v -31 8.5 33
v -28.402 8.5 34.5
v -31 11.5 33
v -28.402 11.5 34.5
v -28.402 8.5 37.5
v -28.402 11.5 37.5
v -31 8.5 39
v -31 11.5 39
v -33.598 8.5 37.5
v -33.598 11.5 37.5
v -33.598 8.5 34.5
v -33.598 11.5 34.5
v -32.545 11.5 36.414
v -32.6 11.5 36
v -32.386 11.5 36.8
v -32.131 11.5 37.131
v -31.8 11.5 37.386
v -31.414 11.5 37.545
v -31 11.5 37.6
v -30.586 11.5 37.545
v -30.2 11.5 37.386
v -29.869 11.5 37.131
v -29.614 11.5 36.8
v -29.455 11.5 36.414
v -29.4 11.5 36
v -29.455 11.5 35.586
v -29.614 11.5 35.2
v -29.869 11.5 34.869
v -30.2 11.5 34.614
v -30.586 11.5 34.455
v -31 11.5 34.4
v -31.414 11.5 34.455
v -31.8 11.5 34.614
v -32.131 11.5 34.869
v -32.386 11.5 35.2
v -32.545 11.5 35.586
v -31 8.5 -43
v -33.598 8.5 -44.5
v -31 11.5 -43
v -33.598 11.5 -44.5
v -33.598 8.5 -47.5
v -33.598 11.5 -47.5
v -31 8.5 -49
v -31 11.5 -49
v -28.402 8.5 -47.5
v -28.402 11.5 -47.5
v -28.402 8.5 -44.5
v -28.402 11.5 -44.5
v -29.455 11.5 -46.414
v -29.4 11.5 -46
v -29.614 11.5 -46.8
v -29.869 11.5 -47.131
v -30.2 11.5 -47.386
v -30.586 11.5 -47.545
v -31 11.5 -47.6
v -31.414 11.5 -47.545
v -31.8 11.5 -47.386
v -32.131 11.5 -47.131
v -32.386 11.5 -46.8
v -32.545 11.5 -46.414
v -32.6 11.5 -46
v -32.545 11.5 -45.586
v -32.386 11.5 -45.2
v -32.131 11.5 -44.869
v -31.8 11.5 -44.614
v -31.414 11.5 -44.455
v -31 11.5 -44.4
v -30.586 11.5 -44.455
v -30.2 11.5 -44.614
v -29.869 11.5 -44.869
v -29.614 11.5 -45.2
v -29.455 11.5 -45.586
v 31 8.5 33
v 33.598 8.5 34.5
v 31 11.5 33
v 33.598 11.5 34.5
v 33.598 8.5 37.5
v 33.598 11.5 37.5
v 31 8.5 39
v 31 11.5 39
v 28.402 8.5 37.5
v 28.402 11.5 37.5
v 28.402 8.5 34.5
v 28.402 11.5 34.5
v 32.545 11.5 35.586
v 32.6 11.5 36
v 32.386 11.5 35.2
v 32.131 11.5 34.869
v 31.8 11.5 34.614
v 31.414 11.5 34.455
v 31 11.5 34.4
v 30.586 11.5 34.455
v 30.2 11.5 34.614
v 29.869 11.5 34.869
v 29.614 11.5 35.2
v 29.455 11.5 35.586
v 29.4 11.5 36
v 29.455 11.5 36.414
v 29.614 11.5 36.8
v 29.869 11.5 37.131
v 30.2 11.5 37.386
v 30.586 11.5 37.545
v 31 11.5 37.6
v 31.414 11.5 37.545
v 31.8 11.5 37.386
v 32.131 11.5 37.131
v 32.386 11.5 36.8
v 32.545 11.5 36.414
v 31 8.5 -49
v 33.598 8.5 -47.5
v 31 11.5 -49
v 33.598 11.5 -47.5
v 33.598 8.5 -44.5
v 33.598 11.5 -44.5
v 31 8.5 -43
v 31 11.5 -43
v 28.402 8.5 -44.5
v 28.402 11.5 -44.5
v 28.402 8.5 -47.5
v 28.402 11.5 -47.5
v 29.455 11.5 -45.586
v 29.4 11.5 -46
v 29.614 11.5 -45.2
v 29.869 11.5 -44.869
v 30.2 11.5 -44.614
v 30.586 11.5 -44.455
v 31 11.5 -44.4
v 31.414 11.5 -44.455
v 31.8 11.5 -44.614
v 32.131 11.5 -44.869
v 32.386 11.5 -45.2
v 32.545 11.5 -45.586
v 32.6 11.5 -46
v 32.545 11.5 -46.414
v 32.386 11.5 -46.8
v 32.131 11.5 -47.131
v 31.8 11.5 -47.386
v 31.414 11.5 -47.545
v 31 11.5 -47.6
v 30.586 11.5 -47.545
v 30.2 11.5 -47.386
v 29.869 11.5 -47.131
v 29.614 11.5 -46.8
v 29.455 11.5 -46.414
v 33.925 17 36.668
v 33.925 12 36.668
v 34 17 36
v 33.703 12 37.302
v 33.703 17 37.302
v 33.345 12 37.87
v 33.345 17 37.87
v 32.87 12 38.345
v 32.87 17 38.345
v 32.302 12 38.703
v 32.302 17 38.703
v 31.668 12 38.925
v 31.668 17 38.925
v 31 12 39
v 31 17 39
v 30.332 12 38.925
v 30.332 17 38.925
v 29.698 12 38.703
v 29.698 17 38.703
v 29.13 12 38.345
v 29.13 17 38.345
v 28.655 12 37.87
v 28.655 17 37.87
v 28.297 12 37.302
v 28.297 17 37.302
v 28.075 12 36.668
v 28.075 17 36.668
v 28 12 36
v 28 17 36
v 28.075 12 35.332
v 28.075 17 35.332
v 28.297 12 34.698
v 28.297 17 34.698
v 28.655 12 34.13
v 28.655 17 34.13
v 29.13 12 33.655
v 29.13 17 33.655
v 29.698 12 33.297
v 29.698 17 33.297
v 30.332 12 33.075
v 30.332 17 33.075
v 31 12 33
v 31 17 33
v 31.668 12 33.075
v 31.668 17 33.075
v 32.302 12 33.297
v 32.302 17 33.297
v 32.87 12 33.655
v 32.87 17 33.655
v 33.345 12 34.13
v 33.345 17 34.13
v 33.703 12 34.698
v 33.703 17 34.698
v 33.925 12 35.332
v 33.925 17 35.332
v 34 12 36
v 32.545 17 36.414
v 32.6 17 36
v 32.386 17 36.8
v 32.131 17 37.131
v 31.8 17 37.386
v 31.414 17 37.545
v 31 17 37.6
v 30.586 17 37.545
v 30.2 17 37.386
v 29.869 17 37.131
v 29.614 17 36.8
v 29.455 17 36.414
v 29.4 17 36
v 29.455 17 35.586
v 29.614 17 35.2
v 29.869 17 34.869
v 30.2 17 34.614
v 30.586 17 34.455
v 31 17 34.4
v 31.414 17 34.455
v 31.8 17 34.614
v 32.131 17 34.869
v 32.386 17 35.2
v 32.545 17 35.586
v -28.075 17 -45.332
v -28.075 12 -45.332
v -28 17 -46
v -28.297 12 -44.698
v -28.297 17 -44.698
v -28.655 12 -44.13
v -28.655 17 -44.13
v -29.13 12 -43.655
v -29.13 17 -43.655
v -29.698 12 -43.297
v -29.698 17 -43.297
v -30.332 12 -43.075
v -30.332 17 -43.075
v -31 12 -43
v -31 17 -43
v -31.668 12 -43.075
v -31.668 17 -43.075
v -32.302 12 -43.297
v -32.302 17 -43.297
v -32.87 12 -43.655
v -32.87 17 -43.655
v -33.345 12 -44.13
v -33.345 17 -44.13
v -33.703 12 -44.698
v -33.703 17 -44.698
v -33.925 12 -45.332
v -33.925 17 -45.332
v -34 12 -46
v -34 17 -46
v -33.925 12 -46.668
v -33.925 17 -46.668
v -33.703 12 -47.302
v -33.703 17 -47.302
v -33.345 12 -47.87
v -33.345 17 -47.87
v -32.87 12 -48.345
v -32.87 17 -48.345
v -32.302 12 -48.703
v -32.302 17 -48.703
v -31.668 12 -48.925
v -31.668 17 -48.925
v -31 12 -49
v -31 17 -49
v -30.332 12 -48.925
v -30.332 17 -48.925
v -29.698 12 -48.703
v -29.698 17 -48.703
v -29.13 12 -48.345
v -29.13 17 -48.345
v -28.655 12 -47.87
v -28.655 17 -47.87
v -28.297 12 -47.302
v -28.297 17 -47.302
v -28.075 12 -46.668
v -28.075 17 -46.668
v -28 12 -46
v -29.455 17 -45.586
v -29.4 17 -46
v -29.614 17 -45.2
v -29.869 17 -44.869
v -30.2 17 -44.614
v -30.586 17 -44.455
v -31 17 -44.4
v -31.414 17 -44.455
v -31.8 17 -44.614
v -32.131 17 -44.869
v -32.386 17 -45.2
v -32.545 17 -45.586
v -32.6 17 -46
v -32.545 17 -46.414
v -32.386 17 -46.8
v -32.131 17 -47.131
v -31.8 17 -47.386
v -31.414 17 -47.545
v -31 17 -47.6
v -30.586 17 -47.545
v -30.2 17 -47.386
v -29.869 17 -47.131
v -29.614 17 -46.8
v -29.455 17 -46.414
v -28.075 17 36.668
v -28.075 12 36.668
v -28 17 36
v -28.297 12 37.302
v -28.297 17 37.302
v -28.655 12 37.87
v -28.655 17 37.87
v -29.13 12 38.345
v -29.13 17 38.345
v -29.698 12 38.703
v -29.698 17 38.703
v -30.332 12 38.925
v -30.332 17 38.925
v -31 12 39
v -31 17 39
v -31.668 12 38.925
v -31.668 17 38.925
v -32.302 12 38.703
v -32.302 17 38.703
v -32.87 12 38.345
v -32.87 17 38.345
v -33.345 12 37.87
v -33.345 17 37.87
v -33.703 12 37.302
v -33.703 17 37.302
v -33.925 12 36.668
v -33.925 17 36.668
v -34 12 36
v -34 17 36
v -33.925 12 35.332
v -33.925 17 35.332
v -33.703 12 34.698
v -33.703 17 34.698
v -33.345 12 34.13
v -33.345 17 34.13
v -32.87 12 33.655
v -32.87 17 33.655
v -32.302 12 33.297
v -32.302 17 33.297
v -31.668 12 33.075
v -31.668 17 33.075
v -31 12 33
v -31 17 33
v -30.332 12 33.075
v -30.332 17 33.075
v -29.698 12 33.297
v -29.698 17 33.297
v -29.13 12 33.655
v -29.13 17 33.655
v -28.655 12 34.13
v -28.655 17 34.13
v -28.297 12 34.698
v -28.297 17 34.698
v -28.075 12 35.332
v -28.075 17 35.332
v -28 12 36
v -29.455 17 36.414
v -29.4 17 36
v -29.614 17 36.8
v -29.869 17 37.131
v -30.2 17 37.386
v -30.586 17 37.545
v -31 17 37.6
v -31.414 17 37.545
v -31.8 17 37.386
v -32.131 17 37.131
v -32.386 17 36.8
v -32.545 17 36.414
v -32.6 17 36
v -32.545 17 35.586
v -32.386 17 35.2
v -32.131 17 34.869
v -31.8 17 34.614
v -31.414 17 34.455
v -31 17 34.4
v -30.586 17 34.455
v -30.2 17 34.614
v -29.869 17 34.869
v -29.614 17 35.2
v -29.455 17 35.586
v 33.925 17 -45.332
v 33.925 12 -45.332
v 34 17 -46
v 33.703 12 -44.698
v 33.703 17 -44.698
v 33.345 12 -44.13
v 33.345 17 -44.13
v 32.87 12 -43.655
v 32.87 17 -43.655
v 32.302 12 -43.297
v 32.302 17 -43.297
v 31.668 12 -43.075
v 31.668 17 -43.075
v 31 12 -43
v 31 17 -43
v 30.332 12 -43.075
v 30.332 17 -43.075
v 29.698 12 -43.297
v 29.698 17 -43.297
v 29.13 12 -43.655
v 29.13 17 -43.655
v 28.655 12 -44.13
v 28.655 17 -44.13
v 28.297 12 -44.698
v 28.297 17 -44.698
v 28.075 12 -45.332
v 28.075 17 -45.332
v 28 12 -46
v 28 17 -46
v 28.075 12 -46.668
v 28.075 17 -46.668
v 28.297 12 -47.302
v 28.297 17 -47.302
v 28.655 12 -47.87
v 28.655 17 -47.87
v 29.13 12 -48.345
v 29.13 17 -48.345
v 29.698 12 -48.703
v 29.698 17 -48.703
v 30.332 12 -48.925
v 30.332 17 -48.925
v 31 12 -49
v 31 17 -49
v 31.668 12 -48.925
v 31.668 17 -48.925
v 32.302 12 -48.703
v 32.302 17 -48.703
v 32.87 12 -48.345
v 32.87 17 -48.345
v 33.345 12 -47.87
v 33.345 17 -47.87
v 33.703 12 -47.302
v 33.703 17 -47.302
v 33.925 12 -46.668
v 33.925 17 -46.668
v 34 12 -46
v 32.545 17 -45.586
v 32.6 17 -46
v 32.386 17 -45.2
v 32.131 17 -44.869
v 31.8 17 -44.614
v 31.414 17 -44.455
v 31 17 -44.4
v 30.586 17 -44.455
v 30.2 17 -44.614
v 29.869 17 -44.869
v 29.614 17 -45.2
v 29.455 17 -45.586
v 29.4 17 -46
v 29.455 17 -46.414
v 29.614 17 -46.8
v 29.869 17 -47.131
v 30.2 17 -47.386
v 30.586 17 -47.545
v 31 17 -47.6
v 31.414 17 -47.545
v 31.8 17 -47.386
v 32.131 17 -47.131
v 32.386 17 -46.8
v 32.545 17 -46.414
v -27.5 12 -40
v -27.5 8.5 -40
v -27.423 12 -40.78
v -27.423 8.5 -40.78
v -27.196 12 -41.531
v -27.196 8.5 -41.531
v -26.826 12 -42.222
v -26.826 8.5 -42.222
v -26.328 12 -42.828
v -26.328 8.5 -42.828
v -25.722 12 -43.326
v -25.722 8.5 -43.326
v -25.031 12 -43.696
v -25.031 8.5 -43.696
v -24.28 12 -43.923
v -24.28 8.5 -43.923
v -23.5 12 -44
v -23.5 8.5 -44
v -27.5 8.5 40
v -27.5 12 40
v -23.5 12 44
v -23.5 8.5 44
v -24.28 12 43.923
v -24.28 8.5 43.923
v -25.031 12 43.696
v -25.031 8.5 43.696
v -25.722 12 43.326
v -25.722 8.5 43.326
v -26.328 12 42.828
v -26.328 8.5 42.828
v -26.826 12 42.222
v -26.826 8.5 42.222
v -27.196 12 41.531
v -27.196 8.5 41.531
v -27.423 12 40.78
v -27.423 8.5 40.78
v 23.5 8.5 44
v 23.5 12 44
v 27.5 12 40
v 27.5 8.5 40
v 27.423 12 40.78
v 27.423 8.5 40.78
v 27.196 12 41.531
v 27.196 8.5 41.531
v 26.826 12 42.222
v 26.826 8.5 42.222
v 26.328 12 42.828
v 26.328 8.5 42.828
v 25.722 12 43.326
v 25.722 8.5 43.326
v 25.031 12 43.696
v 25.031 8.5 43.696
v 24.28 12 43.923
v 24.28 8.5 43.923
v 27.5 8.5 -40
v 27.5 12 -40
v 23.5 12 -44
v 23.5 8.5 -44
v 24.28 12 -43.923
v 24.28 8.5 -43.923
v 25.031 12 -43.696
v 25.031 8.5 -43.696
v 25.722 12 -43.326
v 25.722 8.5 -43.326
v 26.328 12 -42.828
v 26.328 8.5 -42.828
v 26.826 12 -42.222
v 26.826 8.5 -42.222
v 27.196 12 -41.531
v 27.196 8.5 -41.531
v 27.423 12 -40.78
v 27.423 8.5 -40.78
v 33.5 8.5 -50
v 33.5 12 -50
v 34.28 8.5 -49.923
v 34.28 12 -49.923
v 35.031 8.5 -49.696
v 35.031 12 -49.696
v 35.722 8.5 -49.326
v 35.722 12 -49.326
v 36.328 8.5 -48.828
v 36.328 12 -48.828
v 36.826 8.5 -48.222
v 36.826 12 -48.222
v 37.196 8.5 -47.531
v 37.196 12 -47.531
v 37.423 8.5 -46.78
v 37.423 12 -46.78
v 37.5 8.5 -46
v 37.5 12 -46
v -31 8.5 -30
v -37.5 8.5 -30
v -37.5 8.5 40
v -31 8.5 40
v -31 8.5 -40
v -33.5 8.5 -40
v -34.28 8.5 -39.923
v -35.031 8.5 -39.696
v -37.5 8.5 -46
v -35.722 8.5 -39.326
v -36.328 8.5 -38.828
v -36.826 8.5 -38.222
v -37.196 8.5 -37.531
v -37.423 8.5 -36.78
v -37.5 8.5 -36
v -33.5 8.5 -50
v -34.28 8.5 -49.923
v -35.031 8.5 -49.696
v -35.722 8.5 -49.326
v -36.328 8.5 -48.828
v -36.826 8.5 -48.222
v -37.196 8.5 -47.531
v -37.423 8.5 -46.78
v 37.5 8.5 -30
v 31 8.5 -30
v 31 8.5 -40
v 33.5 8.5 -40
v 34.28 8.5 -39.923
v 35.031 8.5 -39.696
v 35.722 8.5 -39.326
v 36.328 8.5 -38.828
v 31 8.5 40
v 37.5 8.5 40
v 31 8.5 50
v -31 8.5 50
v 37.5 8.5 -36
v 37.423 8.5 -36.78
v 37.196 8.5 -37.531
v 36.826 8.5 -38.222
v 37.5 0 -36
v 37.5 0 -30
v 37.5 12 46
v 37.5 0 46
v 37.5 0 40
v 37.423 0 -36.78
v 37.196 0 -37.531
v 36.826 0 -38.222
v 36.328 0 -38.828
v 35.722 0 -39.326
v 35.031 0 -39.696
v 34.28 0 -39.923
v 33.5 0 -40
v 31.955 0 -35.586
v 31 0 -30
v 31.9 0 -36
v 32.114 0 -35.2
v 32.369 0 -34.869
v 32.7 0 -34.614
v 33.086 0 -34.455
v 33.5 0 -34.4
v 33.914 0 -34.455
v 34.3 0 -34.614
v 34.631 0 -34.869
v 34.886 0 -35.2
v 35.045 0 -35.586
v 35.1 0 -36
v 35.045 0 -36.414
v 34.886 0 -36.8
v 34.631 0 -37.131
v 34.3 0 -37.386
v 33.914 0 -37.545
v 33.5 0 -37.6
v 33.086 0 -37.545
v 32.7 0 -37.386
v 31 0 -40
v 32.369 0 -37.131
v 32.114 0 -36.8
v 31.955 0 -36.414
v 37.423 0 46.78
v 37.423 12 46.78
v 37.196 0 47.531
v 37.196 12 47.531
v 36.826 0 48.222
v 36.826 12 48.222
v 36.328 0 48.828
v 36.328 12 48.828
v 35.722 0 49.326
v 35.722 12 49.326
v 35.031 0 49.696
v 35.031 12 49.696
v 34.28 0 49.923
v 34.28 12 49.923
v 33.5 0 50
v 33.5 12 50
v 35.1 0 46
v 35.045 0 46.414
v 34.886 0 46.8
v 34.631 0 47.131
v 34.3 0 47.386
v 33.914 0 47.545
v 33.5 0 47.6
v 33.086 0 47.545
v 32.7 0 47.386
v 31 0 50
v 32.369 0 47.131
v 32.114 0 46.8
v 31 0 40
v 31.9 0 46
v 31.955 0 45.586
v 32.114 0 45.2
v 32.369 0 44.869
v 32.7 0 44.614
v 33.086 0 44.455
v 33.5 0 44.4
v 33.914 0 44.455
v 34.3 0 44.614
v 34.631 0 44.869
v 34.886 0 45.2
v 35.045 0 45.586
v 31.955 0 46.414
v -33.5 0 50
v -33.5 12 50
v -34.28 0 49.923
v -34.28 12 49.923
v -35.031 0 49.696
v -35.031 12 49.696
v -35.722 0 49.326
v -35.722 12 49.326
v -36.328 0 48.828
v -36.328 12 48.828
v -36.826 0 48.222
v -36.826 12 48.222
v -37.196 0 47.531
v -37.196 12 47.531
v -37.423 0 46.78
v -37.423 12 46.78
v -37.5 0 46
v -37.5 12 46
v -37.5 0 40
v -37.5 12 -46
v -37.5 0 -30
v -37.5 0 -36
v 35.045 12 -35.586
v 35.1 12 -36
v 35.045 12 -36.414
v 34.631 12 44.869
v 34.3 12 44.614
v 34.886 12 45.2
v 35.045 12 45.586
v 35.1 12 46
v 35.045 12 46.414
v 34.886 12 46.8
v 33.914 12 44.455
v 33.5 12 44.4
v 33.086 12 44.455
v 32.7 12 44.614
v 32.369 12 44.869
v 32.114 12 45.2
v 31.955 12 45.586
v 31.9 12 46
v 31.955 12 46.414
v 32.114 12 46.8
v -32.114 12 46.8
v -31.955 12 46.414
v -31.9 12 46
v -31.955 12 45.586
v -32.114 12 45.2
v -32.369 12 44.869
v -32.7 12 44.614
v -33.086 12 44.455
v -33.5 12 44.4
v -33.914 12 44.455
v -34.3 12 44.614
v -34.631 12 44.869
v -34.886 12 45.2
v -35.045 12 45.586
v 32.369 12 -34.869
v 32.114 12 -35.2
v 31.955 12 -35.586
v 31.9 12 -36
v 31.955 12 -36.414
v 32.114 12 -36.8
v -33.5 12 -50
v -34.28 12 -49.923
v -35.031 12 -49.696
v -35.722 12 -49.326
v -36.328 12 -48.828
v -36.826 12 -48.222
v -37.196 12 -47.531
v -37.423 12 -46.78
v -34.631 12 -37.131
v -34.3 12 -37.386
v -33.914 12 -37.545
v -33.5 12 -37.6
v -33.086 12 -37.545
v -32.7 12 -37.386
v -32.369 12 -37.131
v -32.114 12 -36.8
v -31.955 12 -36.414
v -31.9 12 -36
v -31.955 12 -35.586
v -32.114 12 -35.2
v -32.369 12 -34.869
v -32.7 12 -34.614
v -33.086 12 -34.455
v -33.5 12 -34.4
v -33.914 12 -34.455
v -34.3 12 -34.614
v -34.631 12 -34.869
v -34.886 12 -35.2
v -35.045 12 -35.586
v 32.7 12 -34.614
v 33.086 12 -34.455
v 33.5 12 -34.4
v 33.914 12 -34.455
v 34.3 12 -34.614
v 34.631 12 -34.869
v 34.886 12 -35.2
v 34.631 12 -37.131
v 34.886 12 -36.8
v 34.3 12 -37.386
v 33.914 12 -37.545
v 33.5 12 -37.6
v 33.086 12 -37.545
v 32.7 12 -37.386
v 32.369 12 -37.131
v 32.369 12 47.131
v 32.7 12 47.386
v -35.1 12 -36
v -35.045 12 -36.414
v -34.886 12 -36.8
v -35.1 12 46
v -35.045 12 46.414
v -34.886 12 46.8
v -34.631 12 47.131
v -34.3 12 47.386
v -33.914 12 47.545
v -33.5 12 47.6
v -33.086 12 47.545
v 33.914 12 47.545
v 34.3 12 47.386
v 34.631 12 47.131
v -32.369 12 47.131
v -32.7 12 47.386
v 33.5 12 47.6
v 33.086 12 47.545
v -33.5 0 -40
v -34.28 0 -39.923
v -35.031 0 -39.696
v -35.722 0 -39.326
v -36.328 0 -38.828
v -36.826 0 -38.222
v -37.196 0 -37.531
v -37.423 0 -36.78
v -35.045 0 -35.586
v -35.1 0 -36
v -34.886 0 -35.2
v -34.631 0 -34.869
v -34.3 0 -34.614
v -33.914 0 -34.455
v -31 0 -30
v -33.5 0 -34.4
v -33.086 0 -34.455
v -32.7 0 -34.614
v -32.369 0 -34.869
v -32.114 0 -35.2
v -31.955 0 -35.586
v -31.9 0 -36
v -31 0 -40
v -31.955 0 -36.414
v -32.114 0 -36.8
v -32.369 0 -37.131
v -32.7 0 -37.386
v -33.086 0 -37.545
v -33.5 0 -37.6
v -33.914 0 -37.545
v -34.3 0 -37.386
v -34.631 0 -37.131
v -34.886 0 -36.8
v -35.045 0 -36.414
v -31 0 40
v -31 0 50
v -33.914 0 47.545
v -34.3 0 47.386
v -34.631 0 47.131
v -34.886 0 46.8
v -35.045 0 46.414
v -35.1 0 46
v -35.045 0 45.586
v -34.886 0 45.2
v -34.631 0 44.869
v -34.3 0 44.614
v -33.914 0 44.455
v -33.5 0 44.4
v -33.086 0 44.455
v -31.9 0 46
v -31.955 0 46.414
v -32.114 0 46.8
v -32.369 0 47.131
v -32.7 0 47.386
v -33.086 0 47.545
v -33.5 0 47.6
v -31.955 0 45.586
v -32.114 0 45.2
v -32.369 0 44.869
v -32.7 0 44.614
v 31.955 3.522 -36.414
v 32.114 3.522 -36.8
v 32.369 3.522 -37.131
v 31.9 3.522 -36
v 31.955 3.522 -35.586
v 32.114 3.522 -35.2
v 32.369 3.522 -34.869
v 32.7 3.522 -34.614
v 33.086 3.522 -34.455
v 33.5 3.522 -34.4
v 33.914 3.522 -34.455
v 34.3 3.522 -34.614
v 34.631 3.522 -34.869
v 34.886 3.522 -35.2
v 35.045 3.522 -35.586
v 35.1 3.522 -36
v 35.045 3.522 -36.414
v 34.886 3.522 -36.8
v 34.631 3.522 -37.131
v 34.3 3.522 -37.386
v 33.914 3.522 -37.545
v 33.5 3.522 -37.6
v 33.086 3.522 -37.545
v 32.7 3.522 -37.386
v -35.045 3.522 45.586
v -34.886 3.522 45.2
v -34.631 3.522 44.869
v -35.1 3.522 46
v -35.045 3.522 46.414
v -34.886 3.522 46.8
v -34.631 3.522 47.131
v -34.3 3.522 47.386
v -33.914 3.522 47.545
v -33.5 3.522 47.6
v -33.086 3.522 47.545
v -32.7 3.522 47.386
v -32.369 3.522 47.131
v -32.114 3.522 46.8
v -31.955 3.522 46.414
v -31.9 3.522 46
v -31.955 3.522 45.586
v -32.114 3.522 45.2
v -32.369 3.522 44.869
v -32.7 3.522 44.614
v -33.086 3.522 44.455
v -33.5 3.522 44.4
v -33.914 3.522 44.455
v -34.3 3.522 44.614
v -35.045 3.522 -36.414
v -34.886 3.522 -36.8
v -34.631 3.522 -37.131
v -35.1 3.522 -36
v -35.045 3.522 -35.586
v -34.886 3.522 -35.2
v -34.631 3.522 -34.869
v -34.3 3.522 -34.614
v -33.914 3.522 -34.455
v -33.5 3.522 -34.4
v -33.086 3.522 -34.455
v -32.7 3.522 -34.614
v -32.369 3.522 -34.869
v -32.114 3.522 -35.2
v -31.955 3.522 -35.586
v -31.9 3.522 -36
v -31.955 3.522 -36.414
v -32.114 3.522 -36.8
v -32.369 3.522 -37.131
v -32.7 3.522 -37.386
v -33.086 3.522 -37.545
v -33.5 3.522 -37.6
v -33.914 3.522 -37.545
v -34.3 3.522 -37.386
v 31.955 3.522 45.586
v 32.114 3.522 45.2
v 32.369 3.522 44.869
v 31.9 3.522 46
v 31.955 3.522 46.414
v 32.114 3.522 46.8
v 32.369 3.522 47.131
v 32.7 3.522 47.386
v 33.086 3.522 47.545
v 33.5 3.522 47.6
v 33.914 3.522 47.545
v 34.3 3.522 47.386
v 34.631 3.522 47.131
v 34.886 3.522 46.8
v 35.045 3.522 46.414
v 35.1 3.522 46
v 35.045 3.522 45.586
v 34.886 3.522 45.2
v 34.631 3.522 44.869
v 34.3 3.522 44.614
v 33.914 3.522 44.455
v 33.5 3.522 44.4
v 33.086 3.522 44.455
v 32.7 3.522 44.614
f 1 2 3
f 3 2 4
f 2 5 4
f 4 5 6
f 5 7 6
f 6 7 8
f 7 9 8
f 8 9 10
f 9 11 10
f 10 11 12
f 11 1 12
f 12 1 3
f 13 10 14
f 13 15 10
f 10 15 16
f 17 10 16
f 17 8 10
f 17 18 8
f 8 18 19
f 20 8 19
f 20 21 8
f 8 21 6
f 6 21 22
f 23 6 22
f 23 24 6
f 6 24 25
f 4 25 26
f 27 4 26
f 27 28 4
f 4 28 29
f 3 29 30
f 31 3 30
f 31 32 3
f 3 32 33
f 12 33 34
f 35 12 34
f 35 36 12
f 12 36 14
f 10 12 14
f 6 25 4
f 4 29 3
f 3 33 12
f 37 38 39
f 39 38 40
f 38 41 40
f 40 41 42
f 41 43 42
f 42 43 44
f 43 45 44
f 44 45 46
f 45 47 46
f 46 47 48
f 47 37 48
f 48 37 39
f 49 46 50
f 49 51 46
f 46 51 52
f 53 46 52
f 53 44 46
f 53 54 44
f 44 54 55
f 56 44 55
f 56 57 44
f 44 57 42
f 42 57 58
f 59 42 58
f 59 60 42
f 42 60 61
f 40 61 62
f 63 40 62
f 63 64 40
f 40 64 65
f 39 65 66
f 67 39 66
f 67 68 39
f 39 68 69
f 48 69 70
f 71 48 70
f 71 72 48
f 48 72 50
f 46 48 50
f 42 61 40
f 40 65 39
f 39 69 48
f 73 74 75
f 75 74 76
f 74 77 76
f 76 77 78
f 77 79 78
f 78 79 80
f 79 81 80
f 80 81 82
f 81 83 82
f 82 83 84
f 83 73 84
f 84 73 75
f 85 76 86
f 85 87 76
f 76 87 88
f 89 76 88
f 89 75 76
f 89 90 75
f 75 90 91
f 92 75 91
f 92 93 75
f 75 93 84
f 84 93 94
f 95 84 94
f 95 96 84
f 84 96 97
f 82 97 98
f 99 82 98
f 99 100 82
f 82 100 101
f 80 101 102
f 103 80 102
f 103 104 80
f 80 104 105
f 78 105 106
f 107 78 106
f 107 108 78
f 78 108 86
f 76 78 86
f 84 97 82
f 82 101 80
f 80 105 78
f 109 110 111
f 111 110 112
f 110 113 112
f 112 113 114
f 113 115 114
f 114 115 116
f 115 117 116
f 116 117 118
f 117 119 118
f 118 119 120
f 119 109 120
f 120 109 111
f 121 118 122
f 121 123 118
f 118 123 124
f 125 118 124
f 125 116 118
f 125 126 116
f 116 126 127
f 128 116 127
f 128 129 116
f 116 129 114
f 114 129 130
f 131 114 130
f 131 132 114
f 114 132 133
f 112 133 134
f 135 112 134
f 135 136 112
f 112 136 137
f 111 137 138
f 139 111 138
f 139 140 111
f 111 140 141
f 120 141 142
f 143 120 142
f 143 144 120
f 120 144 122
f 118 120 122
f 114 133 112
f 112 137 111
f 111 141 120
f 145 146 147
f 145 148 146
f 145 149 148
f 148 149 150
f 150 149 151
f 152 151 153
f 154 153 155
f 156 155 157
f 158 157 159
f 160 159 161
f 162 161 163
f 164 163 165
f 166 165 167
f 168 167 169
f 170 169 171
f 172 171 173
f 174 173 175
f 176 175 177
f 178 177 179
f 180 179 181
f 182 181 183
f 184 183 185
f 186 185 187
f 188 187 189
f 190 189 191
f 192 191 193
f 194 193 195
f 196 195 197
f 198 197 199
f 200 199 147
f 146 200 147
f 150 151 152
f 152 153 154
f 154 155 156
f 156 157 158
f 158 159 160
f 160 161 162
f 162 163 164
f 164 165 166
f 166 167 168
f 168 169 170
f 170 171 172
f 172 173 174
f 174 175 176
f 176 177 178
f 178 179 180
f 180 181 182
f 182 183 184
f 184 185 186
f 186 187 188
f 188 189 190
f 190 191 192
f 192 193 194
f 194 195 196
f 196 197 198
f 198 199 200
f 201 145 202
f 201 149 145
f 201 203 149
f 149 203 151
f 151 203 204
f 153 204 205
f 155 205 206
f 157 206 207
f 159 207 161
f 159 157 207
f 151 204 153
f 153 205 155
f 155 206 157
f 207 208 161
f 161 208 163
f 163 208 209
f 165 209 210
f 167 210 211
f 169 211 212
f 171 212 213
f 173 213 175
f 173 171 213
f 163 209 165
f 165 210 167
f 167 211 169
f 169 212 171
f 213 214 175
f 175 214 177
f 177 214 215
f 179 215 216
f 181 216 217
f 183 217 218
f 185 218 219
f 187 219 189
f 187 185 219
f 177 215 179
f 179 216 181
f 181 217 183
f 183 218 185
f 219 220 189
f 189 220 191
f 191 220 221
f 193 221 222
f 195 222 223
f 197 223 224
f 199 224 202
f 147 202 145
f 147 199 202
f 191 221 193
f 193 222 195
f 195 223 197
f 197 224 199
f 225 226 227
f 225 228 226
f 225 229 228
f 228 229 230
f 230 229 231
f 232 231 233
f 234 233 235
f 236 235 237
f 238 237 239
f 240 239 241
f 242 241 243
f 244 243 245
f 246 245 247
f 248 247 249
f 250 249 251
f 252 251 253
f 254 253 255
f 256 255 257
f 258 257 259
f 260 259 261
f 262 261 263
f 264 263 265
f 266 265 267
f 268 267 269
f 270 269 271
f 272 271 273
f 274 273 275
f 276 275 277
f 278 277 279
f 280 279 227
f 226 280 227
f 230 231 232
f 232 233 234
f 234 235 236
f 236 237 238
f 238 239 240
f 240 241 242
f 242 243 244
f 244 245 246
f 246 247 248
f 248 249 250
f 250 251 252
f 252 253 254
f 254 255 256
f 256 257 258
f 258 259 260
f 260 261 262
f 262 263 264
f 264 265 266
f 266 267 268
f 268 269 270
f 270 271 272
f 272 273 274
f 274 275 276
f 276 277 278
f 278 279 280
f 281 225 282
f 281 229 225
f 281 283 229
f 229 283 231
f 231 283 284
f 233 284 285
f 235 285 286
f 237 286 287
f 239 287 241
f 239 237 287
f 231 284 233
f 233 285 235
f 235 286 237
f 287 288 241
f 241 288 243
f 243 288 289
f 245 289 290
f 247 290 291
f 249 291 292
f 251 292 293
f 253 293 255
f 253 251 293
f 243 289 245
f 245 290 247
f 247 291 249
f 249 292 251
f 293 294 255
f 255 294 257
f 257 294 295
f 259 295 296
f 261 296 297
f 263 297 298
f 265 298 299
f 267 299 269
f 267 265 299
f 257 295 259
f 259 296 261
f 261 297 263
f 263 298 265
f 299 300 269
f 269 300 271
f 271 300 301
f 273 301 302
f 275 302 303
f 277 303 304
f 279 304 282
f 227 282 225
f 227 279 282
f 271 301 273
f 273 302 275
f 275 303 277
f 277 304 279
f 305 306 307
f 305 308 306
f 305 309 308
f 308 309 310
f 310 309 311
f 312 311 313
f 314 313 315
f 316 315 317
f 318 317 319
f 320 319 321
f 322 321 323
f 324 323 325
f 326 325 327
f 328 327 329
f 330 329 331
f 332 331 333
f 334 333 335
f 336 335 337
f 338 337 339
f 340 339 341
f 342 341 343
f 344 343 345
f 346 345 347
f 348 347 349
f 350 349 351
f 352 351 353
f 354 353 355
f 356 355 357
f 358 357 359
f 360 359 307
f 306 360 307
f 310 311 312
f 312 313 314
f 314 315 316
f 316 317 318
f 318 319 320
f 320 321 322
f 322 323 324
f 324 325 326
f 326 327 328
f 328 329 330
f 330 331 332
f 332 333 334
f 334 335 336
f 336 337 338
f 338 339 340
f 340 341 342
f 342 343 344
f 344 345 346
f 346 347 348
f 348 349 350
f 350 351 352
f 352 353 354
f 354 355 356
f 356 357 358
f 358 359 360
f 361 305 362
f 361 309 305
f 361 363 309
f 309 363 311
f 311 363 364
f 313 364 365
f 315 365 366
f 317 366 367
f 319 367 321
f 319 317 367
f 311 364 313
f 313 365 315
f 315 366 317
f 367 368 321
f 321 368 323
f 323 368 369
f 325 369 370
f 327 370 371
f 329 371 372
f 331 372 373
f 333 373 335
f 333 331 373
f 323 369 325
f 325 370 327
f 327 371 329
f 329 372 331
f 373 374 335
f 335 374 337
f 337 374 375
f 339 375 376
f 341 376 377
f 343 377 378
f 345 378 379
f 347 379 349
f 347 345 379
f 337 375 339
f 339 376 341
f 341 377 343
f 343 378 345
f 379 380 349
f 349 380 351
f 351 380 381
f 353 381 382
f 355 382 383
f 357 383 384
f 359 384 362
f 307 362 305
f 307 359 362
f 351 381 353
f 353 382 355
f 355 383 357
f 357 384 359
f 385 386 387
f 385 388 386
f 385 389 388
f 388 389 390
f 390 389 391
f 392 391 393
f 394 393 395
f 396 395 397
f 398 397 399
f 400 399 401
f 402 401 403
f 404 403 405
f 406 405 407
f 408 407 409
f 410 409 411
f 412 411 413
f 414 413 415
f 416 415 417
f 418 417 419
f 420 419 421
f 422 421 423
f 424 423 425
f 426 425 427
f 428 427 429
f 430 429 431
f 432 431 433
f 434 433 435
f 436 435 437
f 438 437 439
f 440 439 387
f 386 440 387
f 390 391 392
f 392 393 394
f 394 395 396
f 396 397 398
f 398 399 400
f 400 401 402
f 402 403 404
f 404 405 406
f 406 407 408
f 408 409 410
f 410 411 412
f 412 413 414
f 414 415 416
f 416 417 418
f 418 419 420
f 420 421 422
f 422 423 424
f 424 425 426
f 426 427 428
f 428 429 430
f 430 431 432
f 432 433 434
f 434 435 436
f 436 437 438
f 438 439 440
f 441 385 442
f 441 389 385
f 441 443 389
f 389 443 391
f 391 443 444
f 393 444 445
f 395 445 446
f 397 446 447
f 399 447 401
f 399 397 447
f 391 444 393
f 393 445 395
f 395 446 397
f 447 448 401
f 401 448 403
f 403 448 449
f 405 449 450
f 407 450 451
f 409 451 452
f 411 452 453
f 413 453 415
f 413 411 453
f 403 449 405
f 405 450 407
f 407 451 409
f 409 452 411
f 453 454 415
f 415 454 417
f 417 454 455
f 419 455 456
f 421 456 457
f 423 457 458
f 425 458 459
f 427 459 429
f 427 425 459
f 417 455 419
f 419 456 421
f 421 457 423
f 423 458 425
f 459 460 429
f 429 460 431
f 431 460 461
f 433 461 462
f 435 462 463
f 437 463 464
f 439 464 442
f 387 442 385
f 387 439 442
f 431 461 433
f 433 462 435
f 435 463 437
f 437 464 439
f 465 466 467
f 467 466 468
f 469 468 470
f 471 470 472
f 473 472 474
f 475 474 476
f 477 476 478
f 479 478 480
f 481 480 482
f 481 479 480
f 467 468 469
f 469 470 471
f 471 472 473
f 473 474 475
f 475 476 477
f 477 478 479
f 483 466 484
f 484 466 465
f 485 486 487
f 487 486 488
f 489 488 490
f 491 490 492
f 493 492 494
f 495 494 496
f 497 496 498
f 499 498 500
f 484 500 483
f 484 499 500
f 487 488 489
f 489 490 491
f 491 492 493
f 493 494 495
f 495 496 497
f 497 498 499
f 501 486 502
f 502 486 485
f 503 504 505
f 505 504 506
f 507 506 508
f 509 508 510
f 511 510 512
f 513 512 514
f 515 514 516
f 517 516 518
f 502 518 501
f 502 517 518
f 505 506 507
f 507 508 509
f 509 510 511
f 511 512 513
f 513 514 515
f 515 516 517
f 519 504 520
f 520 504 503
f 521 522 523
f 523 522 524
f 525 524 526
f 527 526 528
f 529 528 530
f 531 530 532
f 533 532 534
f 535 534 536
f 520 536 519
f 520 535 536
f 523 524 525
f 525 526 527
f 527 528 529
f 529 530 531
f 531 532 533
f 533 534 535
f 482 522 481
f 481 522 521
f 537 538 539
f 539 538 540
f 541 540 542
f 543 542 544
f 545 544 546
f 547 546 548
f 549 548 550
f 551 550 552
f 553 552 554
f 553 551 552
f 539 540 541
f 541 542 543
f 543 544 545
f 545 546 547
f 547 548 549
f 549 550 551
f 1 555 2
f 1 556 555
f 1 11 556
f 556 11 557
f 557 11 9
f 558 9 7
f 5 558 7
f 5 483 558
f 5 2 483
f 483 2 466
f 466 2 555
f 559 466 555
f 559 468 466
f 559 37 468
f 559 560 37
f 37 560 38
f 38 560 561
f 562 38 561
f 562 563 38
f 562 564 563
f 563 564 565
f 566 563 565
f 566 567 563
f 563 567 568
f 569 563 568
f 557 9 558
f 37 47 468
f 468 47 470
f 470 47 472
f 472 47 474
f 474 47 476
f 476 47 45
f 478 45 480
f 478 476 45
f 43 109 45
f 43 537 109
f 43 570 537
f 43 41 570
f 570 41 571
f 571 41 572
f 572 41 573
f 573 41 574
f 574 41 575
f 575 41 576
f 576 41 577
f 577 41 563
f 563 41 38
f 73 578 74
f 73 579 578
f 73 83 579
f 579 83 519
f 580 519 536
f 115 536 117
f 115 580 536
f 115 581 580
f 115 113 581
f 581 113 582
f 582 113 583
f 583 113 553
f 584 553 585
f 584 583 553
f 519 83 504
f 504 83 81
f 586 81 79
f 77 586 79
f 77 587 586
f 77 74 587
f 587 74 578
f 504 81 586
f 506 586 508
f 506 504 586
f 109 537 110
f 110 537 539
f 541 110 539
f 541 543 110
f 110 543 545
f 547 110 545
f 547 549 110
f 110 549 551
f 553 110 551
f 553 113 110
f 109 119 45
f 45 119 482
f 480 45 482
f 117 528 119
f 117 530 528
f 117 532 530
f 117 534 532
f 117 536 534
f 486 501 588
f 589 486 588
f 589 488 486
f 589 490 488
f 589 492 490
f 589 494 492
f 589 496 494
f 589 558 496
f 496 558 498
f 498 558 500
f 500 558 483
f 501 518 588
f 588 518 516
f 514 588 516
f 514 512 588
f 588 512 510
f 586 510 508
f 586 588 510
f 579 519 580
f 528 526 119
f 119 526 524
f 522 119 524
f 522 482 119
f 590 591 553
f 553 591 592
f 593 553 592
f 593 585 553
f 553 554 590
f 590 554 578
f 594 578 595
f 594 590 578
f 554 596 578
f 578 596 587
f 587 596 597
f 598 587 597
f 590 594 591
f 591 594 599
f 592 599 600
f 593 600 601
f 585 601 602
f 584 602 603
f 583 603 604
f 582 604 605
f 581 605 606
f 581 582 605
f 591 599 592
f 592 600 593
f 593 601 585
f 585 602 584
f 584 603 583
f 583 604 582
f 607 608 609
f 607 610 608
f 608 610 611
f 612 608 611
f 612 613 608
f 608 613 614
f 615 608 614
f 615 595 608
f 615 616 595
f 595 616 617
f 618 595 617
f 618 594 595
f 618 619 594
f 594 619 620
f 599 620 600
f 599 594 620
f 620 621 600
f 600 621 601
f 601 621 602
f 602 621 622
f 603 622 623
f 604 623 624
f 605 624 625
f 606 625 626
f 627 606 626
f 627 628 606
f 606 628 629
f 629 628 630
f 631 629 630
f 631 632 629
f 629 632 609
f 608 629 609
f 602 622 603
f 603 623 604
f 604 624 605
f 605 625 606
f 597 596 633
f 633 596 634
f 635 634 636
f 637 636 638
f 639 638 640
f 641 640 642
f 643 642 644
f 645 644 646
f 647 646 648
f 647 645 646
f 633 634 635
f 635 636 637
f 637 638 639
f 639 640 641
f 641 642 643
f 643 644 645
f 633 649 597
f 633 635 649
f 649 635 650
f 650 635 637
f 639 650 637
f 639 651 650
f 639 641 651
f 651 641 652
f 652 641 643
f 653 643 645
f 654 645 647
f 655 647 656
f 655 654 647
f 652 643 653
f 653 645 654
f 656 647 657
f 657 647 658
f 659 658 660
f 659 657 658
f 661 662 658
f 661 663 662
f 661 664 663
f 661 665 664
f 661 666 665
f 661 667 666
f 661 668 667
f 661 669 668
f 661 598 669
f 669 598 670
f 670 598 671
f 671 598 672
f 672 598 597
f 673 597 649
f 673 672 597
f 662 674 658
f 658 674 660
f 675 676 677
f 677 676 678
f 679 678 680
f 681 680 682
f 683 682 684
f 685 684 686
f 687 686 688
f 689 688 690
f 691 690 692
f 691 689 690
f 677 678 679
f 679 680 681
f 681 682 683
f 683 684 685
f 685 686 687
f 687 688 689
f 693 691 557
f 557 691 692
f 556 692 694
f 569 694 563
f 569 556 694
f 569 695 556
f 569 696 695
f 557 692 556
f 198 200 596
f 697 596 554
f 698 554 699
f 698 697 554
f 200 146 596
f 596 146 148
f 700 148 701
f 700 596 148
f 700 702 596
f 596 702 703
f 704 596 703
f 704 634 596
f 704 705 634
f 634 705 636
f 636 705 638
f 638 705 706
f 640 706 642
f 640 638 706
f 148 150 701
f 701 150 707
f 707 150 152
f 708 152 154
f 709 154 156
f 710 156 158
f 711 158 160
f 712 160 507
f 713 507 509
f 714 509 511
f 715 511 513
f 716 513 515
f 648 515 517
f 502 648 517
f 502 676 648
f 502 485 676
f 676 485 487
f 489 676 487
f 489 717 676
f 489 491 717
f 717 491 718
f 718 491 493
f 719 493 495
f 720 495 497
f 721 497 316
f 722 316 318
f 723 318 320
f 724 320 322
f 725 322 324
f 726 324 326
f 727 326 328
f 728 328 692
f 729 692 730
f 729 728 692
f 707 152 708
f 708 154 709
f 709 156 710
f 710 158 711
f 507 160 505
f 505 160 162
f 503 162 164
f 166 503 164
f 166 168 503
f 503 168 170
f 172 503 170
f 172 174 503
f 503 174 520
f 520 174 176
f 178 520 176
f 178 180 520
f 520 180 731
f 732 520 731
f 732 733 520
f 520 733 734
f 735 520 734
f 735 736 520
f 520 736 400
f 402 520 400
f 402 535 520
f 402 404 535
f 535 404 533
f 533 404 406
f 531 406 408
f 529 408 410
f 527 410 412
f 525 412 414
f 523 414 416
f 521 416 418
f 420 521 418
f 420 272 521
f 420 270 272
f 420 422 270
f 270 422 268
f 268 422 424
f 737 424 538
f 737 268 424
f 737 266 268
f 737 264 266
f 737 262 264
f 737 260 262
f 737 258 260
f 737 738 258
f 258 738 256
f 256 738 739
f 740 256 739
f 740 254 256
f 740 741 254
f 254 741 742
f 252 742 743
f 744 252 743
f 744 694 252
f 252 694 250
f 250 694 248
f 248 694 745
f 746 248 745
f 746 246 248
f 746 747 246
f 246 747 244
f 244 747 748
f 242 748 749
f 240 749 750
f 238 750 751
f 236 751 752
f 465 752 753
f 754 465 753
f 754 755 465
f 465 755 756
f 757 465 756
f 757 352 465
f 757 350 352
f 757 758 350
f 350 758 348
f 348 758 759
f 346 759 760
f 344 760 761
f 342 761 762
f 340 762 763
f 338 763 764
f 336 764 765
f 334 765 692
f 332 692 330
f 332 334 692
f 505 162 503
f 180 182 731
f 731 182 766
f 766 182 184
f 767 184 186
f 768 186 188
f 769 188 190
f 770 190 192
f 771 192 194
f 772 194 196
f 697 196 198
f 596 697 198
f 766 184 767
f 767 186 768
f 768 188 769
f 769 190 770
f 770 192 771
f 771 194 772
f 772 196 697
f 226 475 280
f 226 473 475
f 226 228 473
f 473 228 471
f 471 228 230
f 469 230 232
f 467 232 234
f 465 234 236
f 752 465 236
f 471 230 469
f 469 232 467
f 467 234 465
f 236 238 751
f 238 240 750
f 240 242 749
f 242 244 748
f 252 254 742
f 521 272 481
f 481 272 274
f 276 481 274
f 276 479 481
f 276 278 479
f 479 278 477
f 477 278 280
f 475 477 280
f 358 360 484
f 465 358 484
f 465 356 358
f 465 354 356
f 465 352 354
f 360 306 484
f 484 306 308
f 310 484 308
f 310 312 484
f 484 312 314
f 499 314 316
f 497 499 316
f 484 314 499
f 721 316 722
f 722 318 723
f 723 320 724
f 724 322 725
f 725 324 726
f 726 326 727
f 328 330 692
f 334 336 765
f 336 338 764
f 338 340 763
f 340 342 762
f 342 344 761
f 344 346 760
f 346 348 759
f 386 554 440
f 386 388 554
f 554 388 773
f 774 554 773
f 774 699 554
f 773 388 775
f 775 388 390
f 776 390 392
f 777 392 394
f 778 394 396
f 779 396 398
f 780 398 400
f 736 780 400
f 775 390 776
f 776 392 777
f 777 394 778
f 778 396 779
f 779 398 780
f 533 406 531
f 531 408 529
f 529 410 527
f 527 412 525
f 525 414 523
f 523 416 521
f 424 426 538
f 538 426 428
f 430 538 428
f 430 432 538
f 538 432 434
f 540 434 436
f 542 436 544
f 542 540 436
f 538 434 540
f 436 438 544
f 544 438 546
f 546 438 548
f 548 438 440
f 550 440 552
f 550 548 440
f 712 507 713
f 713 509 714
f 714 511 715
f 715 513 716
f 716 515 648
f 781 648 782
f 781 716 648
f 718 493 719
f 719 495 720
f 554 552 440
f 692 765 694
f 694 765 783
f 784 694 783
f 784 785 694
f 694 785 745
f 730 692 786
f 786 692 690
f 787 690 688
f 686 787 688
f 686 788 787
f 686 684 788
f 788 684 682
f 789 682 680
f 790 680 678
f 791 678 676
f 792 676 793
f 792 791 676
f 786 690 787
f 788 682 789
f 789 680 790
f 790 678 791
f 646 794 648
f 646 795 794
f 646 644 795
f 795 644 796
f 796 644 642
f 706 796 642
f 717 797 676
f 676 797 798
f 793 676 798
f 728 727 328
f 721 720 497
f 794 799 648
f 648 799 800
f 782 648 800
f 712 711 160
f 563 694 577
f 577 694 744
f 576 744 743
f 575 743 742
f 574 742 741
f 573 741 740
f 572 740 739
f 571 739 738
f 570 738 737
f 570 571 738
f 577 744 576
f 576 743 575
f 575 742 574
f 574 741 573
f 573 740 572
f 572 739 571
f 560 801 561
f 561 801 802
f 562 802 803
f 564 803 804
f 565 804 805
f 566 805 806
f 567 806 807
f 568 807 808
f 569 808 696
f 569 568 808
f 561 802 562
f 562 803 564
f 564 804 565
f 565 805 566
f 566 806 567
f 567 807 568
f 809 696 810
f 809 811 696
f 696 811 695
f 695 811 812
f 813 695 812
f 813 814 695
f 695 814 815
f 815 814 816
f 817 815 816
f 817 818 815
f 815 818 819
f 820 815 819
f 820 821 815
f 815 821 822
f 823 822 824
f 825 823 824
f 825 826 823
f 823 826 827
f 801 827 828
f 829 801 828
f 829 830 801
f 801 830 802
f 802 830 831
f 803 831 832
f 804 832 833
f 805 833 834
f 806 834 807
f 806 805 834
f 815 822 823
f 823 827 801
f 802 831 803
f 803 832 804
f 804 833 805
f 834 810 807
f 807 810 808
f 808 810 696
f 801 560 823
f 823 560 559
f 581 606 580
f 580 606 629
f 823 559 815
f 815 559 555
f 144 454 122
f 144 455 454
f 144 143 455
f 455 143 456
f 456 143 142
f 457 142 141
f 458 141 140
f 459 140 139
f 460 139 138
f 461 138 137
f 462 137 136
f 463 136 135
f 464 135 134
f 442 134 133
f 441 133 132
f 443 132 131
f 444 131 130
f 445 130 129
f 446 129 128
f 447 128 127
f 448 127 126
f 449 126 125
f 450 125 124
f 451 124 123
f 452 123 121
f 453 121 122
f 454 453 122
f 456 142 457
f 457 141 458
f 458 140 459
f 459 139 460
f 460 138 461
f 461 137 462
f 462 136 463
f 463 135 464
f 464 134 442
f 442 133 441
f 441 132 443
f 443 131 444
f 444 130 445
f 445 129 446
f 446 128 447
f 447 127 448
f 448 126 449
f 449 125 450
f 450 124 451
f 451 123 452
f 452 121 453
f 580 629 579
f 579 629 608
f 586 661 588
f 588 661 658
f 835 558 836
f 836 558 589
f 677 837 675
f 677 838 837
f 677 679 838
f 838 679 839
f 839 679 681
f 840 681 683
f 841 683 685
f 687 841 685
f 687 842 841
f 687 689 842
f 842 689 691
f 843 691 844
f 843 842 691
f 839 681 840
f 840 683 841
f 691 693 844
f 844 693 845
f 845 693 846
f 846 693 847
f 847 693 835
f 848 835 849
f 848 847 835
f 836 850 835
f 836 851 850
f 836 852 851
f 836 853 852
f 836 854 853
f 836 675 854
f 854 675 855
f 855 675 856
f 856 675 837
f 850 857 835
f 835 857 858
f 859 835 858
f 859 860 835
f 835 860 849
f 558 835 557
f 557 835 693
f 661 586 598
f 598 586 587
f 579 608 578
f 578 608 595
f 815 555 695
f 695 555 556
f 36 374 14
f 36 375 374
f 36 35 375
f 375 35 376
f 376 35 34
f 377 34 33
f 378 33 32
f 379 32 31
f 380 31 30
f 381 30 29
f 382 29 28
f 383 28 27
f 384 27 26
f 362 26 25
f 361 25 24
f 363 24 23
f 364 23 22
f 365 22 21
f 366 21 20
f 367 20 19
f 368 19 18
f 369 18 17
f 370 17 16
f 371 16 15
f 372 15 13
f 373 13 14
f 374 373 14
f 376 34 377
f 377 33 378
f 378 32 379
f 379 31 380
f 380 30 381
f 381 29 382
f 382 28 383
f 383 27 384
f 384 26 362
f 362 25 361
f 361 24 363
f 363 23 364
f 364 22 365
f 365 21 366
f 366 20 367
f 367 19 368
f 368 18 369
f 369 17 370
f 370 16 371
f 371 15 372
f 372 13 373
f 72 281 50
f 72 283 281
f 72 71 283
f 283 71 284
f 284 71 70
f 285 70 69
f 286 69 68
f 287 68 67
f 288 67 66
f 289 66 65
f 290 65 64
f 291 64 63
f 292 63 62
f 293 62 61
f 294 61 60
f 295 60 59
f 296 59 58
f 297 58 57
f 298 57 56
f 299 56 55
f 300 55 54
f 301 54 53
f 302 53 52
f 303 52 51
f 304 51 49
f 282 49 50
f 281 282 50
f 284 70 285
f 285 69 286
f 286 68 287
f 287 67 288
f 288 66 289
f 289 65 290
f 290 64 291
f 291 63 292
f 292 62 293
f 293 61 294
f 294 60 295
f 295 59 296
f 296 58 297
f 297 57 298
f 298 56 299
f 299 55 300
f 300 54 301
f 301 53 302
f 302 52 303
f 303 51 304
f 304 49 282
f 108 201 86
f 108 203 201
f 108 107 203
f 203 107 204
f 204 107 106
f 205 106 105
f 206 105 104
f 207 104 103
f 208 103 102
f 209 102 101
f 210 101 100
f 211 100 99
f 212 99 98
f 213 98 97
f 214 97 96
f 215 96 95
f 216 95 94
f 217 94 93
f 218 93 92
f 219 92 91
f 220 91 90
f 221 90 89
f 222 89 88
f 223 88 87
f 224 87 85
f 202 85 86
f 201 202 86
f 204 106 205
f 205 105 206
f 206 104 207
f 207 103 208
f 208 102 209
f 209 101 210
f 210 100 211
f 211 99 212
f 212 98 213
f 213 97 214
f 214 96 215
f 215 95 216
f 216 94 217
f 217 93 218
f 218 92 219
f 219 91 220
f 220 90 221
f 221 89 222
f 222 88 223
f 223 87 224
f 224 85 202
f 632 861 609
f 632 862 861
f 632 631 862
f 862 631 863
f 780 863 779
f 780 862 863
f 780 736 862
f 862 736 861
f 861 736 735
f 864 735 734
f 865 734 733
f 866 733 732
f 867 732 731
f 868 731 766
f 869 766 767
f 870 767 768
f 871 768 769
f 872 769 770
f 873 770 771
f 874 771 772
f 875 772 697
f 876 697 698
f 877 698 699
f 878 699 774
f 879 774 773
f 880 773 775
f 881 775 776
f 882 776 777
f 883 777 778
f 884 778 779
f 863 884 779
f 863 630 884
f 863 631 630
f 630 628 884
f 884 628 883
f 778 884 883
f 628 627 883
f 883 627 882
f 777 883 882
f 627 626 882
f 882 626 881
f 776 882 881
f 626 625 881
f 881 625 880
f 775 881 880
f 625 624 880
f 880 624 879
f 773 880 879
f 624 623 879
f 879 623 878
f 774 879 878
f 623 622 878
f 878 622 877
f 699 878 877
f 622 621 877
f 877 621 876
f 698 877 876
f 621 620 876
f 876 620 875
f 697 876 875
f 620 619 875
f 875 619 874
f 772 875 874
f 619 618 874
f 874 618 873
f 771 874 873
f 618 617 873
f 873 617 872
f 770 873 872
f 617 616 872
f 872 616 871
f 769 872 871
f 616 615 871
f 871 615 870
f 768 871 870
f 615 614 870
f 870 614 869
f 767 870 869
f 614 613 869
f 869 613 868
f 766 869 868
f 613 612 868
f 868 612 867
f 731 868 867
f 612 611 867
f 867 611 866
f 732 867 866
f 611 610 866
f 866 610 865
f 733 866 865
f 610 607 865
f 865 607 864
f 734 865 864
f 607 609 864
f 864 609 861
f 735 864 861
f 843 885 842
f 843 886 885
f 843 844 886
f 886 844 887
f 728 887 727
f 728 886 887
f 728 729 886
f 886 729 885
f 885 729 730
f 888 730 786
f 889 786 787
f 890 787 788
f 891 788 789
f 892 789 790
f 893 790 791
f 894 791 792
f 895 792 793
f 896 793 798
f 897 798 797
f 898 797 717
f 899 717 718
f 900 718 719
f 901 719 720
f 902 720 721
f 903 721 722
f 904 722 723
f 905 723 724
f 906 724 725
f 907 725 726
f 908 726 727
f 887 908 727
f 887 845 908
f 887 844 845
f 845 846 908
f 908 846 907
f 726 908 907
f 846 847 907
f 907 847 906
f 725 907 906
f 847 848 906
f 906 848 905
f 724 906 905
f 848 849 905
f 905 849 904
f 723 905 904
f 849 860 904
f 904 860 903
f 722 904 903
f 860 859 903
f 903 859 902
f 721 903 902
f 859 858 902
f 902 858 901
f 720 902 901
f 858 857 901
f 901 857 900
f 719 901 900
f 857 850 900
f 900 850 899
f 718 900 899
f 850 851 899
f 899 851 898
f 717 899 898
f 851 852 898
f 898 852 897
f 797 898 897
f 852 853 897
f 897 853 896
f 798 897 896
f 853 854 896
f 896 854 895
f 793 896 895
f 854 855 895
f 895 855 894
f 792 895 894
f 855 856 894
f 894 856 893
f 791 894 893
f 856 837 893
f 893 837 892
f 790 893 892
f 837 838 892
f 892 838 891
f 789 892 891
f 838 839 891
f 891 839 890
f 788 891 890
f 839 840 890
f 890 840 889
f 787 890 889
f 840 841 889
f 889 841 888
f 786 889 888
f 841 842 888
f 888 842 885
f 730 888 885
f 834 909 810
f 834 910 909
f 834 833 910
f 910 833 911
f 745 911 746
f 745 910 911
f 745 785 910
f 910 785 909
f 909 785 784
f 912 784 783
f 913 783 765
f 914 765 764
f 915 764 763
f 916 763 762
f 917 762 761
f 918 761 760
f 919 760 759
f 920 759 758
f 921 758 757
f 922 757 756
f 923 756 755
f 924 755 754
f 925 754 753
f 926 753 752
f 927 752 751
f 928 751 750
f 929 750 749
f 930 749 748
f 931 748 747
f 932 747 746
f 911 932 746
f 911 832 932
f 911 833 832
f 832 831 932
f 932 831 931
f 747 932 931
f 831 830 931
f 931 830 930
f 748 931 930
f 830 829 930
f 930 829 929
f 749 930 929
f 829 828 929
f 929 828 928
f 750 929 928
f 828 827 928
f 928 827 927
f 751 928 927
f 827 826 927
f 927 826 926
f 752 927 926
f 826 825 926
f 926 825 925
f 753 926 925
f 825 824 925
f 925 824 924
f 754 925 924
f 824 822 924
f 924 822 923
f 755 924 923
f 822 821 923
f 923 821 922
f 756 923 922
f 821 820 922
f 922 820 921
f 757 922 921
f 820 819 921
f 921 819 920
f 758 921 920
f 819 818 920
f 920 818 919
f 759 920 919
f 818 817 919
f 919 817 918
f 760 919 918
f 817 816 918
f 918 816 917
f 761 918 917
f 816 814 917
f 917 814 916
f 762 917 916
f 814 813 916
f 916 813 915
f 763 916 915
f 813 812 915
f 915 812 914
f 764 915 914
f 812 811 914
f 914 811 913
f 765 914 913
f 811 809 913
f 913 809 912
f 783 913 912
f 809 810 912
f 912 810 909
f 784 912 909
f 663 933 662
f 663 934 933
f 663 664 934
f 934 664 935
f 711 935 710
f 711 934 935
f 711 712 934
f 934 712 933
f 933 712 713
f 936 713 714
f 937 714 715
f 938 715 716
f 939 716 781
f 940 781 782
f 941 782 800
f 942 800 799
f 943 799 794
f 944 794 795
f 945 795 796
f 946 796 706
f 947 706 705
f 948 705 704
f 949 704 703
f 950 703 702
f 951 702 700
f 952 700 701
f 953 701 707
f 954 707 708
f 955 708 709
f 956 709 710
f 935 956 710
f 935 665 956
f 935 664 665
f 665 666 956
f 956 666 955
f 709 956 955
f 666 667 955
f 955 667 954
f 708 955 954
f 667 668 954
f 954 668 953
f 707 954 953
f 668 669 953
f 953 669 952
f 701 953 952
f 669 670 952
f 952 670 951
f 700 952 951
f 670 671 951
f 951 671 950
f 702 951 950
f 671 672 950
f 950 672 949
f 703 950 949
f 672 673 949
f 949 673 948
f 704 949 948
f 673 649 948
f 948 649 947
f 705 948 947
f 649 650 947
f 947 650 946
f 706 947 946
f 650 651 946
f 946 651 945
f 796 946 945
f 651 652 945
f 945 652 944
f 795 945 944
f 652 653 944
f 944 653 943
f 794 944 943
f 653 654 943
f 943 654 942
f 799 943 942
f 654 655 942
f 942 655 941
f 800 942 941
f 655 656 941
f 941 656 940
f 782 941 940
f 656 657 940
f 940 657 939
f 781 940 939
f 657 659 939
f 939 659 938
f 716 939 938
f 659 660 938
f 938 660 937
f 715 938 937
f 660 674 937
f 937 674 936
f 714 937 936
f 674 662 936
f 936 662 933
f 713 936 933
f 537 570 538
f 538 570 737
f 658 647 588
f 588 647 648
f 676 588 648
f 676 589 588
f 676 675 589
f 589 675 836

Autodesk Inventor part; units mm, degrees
ref_plane "YZ Plane" through (0, 0, 0) normal (1, 0, 0) x (0, 1, 0)
ref_plane "XZ Plane" through (0, 0, 0) normal (0, 1, 0) x (-1, 0, 0)
ref_plane "XY Plane" through (0, 0, 0) normal (0, 0, 1) x (1, 0, 0)
sketch "Sketch8" plane through (0, 0, 0) normal (0, 1, 0) x (-1, 0, 0)
  line L0 (37.5, 50) -> (-37.5, 50)
  line L1 (-37.5, 50) -> (-37.5, -50)
  line L2 (-37.5, -50) -> (37.5, -50)
  line L3 (37.5, -50) -> (37.5, 50)
  point P0 (0, 0)
  point P1 (37.5, 0)
  point P2 (0, 50)
  dimension "d42" = 100
  dimension "d43" = 75
extrude "Extrusion5" add sketch "Sketch8" along normal blind 12
sketch "Sketch9" plane through (0, 12, 0) normal (0, 1, 0) x (1, 0, 0)
  line L0 (-37.5, 50) -> (-37.5, -50) projected
  line L1 (-37.5, -50) -> (37.5, -50) projected
  point P0 (0, 0)
  point P1 (-33.5, -46)
  point P2 (-33.5, 36)
  point P3 (33.5, 36)
  point P4 (33.5, -46)
  dimension "d46" = 67
  dimension "d47" = 82
  dimension "d48" = 4
  dimension "d49" = 4
hole "Hole3" at (-33.5, 12, 46) at (-33.5, 12, -36) at (33.5, 12, -36) at (33.5, 12, 46) direction (0, -1, 0) diameter 3.2 end through all
sketch "Sketch10" plane through (0, 12, 0) normal (0, 1, 0) x (1, 0, 0)
  line L0 (37.5, 50) -> (-37.5, 50) projected
  point P0 (0, 0)
  point P1 (-31, -36)
  point P2 (-31, 46)
  point P3 (31, 46)
  point P4 (31, -36)
  dimension "d57" = 62
  dimension "d58" = 82
  dimension "d59" = 4
  dimension "d60" = 31
hole "Hole4" at (-31, 12, 36) at (-31, 12, -46) at (31, 12, -46) at (31, 12, 36) direction (0, -1, 0) diameter 3.2 end through all
sketch "Sketch11" plane through (37.5, 0, 50) normal (1, 0, 0) x (0, 0, -1)
  line L0 (10, 8.5) -> (80, 8.5)
  line L1 (80, 8.5) -> (80, 0)
  line L2 (80, 0) -> (10, 0)
  line L3 (10, 0) -> (10, 8.5)
  line L4 (0, 0) -> (0, 12) projected
  line L5 (0, 0) -> (100, 0) projected
  point P0 (50, 0)
  point P1 (45, 0)
  dimension "d69" = 8.5
  dimension "d70" = 70
  dimension "d71" = 45
extrude "Extrusion6" cut sketch "Sketch11" against normal through all
sketch "Sketch12" plane through (-37.5, 0, 50) normal (0, 0, 1) x (1, 0, 0)
  line L0 (6.5, 8.5) -> (68.5, 8.5)
  line L1 (68.5, 8.5) -> (68.5, 0)
  line L2 (68.5, 0) -> (6.5, 0)
  line L3 (6.5, 0) -> (6.5, 8.5)
  line L4 (0, 0) -> (75, 0) projected
  point P0 (37.5, 0)
  point P1 (37.5, 0)
  dimension "d74" = 8.5
  dimension "d75" = 62
extrude "Extrusion7" cut sketch "Sketch12" against normal through all
sketch "Sketch13" plane through (37.5, 0, -50) normal (1, 0, 0) x (0, 0, -1)
  line L0 (0, 0) -> (0, 12) projected
  line L1 (0, 0) -> (-10, 0)
  line L2 (-10, 0) -> (-10, 8.5)
  line L3 (-10, 8.5) -> (0, 8.5)
  line L4 (0, 8.5) -> (0, 0)
  line L5 (-20, 8.5) -> (-20, 0) projected
  line L6 (-90, 8.5) -> (-20, 8.5) projected
  point P0 (-50, 0)
  dimension "d78" = 10
extrude "Extrusion8" cut sketch "Sketch13" against normal through all
fillet "Fillet1" radius 4 6 edges at (-37.5, 4.25, -40) (-37.5, 10.25, -50) (-37.5, 6, 50) (37.5, 6, 50) (37.5, 4.25, -40) (37.5, 10.25, -50)
sketch "Sketch14" plane through (0, 12, 0) normal (0, 1, 0) x (1, 0, 0)
  line L0 (-23.5, -44) -> (23.5, -44)
  line L1 (27.5, -40) -> (27.5, 40)
  line L2 (23.5, 44) -> (-23.5, 44)
  line L3 (-27.5, 40) -> (-27.5, -40)
  line L4 (-33.5, -50) -> (33.5, -50) projected
  line L5 (33.5, 50) -> (-33.5, 50) projected
  line L6 (-37.5, 46) -> (-37.5, -46) projected
  line L7 (37.5, -46) -> (37.5, 46) projected
  arc A0 (-27.5, -40) -> (-23.5, -44) centre (-23.5, -40) ccw
  arc A1 (23.5, -44) -> (27.5, -40) centre (23.5, -40) ccw
  arc A2 (27.5, 40) -> (23.5, 44) centre (23.5, 40) ccw
  arc A3 (-23.5, 44) -> (-27.5, 40) centre (-23.5, 40) ccw
  point P0 (0, 0)
  dimension "d82" = 6
  dimension "d83" = 6
  dimension "d84" = 10
  dimension "d85" = 10
  dimension "d86" = 4
extrude "Extrusion9" cut sketch "Sketch14" against normal through all
sketch "Sketch15" plane through (0, 12, 0) normal (0, 1, 0) x (1, 0, 0)
  circle A0 centre (-31, 46) radius 1.6 projected
  circle A1 centre (-31, 46) radius 3
  circle A2 centre (-31, -36) radius 1.6 projected
  circle A3 centre (-31, -36) radius 3
  circle A4 centre (31, -36) radius 1.6 projected
  circle A5 centre (31, -36) radius 3
  circle A6 centre (31, 46) radius 1.6 projected
  circle A7 centre (31, 46) radius 3
  point P0 (0, 0)
  dimension "d89" = 6
  dimension "d90" = 6
  dimension "d91" = 6
  dimension "d92" = 6
extrude "Extrusion10" add sketch "Sketch15" along normal blind 5
sketch "Sketch16" plane through (37.5, 8.5, -30) normal (0, -1, 0) x (1, 0, 0)
  circle A0 centre (-6.5, 66) radius 1.6 projected
  circle A1 centre (-6.5, 66) radius 3 projected
  line L0 (-6.5, 63) -> (-9.0981, 64.5)
  line L1 (-9.0981, 64.5) -> (-9.0981, 67.5)
  line L2 (-9.0981, 67.5) -> (-6.5, 69)
  line L3 (-6.5, 69) -> (-3.9019, 67.5)
  line L4 (-3.9019, 67.5) -> (-3.9019, 64.5)
  line L5 (-3.9019, 64.5) -> (-6.5, 63)
  circle A2 centre (-68.5, -16) radius 1.6 projected
  circle A3 centre (-68.5, -16) radius 3 projected
  line L6 (-68.5, -13) -> (-65.9019, -14.5)
  line L7 (-65.9019, -14.5) -> (-65.9019, -17.5)
  line L8 (-65.9019, -17.5) -> (-68.5, -19)
  line L9 (-68.5, -19) -> (-71.0981, -17.5)
  line L10 (-71.0981, -17.5) -> (-71.0981, -14.5)
  line L11 (-71.0981, -14.5) -> (-68.5, -13)
  circle A4 centre (-68.5, 66) radius 1.6 projected
  circle A5 centre (-68.5, 66) radius 3 projected
  line L12 (-68.5, 63) -> (-71.0981, 64.5)
  line L13 (-71.0981, 64.5) -> (-71.0981, 67.5)
  line L14 (-71.0981, 67.5) -> (-68.5, 69)
  line L15 (-68.5, 69) -> (-65.9019, 67.5)
  line L16 (-65.9019, 67.5) -> (-65.9019, 64.5)
  line L17 (-65.9019, 64.5) -> (-68.5, 63)
  circle A6 centre (-6.5, -16) radius 3 projected
  line L18 (-6.5, -19) -> (-9.0981, -17.5)
  line L19 (-9.0981, -17.5) -> (-9.0981, -14.5)
  line L20 (-9.0981, -14.5) -> (-6.5, -13)
  line L21 (-6.5, -13) -> (-3.9019, -14.5)
  line L22 (-3.9019, -14.5) -> (-3.9019, -17.5)
  line L23 (-3.9019, -17.5) -> (-6.5, -19)
  point P0 (-37.5, 30)
  point P1 (-6.5, -16)
extrude "Extrusion11" cut sketch "Sketch16" against normal blind 3 contours L4 L5 L0 L1 L2 L3 | L7 L8 L9 L10 L11 L6 | A4 | L16 L17 L12 L13 L14 L15 | L22 L23 L18 L19 L20 L21
equation "\"d60\" = 0.5 * d57"
equation "\"d83\" = d82"
equation "\"d85\" = d84"
equation "\"d90\" = d89"
equation "\"d91\" = d89"
equation "\"d92\" = d89"
properties part number "phone_clamp_v2"
